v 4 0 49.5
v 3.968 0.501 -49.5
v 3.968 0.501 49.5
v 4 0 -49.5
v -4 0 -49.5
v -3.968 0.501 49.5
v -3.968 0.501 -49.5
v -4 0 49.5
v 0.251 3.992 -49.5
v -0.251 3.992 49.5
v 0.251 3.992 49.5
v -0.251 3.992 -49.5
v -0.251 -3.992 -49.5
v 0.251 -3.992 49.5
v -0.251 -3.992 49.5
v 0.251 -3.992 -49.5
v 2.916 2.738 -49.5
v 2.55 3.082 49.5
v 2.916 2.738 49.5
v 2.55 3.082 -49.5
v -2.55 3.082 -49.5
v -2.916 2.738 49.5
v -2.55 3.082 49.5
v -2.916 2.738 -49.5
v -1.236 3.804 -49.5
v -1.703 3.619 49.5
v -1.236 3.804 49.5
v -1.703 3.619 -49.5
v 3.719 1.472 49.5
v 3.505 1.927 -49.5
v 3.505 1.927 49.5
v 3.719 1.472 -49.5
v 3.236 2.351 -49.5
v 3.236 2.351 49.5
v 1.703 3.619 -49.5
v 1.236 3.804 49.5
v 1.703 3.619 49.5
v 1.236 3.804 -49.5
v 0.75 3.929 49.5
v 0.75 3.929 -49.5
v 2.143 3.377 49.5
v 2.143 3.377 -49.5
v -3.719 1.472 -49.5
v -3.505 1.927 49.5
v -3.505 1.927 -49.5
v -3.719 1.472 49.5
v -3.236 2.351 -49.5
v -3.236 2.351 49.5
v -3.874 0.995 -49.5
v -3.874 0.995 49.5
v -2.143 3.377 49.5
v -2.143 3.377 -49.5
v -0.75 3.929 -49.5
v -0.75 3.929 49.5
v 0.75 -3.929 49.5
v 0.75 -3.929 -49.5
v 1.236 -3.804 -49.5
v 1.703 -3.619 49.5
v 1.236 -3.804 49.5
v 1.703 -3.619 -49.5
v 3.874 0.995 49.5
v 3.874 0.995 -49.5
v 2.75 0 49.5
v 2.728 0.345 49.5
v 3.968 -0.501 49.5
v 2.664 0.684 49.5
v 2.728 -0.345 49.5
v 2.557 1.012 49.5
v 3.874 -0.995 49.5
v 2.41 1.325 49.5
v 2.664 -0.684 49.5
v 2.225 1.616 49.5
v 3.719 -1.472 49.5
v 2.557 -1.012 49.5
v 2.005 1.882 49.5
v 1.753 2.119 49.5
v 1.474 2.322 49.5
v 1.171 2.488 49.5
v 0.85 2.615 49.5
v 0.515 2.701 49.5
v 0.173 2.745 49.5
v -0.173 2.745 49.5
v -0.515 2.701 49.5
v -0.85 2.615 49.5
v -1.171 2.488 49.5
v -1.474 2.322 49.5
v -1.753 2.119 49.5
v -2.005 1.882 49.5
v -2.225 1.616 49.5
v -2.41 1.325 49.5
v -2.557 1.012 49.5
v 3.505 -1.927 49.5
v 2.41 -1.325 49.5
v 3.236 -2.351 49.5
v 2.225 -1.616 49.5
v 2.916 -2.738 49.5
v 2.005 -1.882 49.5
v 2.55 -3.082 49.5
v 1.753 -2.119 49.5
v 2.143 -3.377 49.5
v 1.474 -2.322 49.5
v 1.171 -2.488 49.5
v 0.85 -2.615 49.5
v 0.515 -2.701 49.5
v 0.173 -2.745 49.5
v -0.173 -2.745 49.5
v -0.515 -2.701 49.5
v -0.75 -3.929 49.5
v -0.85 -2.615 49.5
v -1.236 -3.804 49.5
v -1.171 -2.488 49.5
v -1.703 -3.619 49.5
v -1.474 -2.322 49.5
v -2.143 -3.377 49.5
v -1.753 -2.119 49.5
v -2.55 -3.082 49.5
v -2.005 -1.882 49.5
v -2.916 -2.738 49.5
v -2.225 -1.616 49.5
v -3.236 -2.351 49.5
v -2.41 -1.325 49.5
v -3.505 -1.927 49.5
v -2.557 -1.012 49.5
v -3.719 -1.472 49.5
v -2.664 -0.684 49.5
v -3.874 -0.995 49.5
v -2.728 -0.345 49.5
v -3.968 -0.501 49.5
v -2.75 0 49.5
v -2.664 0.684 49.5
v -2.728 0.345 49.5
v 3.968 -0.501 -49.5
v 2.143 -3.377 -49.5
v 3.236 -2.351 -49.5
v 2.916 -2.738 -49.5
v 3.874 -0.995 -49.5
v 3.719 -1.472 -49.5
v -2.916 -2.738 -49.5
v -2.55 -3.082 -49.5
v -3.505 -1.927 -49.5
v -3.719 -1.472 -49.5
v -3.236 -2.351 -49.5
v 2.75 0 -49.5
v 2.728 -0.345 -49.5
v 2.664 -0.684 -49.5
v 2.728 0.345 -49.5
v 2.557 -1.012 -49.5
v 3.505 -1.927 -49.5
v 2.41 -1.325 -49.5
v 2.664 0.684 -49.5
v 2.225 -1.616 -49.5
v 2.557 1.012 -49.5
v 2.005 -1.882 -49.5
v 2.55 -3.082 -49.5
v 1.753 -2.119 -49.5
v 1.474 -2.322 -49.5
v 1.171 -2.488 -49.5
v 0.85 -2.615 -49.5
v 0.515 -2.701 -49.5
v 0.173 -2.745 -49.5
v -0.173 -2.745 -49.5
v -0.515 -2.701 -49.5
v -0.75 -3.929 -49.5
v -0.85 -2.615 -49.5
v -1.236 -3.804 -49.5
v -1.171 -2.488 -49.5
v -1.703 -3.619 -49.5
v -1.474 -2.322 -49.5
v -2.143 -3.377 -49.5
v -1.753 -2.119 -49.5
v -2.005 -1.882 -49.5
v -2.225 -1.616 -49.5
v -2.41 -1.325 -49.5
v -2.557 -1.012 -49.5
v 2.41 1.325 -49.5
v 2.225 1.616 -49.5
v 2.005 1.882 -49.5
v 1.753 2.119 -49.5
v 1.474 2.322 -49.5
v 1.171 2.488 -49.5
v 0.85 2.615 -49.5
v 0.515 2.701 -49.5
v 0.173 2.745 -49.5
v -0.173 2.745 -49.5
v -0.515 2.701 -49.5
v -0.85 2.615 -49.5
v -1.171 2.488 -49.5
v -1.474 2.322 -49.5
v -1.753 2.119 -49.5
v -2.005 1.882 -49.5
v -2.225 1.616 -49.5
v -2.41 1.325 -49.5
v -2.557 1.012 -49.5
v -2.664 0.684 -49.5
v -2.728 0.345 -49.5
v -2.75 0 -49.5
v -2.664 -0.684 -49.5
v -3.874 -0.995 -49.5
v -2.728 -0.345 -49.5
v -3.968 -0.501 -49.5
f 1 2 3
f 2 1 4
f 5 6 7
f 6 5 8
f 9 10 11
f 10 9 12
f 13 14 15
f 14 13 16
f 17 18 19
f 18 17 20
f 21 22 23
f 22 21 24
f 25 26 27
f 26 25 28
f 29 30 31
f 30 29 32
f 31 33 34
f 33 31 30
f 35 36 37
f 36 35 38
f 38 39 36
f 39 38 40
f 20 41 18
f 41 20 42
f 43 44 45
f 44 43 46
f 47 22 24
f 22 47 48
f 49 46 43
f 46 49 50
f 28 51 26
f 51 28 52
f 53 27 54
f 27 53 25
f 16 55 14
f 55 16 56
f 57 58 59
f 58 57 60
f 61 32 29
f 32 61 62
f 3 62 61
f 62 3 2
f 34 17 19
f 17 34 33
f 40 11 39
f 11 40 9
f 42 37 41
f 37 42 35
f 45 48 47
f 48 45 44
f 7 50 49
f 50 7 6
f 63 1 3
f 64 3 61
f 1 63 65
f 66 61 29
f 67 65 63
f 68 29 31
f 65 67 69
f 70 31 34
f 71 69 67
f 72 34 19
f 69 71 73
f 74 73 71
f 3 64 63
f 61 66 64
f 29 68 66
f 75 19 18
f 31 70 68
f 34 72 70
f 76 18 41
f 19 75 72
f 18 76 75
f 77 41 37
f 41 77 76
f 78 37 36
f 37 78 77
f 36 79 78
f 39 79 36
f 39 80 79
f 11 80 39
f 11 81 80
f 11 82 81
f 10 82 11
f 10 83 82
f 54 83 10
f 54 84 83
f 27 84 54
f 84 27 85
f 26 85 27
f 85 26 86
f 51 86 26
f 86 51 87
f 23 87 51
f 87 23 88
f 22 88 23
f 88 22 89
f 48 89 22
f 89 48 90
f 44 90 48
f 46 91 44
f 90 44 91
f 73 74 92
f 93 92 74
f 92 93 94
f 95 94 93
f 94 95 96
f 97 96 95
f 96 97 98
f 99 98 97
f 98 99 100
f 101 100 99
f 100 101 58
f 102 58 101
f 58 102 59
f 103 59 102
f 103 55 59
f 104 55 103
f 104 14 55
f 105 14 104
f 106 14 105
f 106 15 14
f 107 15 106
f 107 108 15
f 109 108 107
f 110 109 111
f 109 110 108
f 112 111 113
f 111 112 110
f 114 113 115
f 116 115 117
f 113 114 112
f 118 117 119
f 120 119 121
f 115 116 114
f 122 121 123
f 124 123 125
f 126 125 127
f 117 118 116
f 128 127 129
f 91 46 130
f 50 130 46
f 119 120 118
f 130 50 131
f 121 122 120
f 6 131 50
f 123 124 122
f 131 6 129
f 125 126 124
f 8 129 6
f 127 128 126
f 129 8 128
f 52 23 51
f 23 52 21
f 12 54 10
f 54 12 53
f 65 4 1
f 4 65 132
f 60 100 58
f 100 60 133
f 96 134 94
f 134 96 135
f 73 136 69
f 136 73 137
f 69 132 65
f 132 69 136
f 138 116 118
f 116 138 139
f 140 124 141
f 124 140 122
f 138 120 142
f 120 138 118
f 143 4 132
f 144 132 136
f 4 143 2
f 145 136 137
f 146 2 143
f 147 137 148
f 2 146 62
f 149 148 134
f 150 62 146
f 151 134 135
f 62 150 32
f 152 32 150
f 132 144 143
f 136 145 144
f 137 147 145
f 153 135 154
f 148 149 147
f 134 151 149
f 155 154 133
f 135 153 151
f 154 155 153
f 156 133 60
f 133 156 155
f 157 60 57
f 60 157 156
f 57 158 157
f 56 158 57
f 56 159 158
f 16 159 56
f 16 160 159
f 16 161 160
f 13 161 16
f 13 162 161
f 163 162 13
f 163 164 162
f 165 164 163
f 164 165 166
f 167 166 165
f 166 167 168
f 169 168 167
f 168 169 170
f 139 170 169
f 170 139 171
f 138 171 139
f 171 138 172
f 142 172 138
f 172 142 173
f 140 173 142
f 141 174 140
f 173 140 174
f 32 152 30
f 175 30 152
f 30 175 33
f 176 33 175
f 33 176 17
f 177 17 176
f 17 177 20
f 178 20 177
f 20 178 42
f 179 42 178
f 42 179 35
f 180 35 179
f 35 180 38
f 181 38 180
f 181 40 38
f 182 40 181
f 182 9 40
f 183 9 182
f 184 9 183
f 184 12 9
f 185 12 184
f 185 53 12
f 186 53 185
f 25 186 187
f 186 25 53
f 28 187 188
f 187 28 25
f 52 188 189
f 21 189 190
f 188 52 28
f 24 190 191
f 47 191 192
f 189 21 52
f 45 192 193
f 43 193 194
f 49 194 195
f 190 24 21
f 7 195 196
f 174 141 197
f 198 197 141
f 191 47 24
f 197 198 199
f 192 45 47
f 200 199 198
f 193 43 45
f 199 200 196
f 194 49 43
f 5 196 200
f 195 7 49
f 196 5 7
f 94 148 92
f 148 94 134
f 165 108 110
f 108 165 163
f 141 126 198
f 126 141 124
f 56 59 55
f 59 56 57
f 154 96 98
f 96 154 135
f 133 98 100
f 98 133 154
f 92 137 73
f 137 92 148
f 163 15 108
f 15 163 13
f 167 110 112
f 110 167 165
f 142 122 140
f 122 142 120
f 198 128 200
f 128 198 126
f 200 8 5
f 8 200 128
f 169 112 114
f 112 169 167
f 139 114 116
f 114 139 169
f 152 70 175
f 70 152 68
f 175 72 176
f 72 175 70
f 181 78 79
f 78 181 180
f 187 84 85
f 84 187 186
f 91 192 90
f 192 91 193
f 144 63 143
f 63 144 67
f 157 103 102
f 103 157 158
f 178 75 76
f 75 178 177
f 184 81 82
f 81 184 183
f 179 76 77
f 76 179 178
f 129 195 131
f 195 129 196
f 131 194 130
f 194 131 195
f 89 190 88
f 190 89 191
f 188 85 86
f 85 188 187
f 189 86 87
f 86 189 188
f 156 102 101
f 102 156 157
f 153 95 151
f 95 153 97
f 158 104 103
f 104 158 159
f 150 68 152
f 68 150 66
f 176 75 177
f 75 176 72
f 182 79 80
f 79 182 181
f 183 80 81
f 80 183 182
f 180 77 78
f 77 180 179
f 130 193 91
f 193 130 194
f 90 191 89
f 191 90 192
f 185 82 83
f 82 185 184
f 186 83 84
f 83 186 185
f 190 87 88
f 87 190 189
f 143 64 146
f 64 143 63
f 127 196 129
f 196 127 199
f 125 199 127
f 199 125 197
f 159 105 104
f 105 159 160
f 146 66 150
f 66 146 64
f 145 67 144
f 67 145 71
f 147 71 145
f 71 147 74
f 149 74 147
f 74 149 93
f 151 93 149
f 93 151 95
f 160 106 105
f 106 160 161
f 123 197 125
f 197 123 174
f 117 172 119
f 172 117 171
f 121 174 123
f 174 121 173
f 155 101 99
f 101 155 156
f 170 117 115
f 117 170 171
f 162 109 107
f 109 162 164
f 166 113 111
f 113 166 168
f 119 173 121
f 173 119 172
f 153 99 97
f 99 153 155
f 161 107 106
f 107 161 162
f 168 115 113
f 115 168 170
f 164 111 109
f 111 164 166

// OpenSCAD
$fn = 50;


difference() {
	union() {
		translate(v = [0, 0, -49.5000000000]) {
			cylinder(h = 99, r = 4.0000000000);
		}
	}
	union() {
		translate(v = [0, 0, -100.0000000000]) {
			cylinder(h = 200, r = 2.7500000000);
		}
	}
}
